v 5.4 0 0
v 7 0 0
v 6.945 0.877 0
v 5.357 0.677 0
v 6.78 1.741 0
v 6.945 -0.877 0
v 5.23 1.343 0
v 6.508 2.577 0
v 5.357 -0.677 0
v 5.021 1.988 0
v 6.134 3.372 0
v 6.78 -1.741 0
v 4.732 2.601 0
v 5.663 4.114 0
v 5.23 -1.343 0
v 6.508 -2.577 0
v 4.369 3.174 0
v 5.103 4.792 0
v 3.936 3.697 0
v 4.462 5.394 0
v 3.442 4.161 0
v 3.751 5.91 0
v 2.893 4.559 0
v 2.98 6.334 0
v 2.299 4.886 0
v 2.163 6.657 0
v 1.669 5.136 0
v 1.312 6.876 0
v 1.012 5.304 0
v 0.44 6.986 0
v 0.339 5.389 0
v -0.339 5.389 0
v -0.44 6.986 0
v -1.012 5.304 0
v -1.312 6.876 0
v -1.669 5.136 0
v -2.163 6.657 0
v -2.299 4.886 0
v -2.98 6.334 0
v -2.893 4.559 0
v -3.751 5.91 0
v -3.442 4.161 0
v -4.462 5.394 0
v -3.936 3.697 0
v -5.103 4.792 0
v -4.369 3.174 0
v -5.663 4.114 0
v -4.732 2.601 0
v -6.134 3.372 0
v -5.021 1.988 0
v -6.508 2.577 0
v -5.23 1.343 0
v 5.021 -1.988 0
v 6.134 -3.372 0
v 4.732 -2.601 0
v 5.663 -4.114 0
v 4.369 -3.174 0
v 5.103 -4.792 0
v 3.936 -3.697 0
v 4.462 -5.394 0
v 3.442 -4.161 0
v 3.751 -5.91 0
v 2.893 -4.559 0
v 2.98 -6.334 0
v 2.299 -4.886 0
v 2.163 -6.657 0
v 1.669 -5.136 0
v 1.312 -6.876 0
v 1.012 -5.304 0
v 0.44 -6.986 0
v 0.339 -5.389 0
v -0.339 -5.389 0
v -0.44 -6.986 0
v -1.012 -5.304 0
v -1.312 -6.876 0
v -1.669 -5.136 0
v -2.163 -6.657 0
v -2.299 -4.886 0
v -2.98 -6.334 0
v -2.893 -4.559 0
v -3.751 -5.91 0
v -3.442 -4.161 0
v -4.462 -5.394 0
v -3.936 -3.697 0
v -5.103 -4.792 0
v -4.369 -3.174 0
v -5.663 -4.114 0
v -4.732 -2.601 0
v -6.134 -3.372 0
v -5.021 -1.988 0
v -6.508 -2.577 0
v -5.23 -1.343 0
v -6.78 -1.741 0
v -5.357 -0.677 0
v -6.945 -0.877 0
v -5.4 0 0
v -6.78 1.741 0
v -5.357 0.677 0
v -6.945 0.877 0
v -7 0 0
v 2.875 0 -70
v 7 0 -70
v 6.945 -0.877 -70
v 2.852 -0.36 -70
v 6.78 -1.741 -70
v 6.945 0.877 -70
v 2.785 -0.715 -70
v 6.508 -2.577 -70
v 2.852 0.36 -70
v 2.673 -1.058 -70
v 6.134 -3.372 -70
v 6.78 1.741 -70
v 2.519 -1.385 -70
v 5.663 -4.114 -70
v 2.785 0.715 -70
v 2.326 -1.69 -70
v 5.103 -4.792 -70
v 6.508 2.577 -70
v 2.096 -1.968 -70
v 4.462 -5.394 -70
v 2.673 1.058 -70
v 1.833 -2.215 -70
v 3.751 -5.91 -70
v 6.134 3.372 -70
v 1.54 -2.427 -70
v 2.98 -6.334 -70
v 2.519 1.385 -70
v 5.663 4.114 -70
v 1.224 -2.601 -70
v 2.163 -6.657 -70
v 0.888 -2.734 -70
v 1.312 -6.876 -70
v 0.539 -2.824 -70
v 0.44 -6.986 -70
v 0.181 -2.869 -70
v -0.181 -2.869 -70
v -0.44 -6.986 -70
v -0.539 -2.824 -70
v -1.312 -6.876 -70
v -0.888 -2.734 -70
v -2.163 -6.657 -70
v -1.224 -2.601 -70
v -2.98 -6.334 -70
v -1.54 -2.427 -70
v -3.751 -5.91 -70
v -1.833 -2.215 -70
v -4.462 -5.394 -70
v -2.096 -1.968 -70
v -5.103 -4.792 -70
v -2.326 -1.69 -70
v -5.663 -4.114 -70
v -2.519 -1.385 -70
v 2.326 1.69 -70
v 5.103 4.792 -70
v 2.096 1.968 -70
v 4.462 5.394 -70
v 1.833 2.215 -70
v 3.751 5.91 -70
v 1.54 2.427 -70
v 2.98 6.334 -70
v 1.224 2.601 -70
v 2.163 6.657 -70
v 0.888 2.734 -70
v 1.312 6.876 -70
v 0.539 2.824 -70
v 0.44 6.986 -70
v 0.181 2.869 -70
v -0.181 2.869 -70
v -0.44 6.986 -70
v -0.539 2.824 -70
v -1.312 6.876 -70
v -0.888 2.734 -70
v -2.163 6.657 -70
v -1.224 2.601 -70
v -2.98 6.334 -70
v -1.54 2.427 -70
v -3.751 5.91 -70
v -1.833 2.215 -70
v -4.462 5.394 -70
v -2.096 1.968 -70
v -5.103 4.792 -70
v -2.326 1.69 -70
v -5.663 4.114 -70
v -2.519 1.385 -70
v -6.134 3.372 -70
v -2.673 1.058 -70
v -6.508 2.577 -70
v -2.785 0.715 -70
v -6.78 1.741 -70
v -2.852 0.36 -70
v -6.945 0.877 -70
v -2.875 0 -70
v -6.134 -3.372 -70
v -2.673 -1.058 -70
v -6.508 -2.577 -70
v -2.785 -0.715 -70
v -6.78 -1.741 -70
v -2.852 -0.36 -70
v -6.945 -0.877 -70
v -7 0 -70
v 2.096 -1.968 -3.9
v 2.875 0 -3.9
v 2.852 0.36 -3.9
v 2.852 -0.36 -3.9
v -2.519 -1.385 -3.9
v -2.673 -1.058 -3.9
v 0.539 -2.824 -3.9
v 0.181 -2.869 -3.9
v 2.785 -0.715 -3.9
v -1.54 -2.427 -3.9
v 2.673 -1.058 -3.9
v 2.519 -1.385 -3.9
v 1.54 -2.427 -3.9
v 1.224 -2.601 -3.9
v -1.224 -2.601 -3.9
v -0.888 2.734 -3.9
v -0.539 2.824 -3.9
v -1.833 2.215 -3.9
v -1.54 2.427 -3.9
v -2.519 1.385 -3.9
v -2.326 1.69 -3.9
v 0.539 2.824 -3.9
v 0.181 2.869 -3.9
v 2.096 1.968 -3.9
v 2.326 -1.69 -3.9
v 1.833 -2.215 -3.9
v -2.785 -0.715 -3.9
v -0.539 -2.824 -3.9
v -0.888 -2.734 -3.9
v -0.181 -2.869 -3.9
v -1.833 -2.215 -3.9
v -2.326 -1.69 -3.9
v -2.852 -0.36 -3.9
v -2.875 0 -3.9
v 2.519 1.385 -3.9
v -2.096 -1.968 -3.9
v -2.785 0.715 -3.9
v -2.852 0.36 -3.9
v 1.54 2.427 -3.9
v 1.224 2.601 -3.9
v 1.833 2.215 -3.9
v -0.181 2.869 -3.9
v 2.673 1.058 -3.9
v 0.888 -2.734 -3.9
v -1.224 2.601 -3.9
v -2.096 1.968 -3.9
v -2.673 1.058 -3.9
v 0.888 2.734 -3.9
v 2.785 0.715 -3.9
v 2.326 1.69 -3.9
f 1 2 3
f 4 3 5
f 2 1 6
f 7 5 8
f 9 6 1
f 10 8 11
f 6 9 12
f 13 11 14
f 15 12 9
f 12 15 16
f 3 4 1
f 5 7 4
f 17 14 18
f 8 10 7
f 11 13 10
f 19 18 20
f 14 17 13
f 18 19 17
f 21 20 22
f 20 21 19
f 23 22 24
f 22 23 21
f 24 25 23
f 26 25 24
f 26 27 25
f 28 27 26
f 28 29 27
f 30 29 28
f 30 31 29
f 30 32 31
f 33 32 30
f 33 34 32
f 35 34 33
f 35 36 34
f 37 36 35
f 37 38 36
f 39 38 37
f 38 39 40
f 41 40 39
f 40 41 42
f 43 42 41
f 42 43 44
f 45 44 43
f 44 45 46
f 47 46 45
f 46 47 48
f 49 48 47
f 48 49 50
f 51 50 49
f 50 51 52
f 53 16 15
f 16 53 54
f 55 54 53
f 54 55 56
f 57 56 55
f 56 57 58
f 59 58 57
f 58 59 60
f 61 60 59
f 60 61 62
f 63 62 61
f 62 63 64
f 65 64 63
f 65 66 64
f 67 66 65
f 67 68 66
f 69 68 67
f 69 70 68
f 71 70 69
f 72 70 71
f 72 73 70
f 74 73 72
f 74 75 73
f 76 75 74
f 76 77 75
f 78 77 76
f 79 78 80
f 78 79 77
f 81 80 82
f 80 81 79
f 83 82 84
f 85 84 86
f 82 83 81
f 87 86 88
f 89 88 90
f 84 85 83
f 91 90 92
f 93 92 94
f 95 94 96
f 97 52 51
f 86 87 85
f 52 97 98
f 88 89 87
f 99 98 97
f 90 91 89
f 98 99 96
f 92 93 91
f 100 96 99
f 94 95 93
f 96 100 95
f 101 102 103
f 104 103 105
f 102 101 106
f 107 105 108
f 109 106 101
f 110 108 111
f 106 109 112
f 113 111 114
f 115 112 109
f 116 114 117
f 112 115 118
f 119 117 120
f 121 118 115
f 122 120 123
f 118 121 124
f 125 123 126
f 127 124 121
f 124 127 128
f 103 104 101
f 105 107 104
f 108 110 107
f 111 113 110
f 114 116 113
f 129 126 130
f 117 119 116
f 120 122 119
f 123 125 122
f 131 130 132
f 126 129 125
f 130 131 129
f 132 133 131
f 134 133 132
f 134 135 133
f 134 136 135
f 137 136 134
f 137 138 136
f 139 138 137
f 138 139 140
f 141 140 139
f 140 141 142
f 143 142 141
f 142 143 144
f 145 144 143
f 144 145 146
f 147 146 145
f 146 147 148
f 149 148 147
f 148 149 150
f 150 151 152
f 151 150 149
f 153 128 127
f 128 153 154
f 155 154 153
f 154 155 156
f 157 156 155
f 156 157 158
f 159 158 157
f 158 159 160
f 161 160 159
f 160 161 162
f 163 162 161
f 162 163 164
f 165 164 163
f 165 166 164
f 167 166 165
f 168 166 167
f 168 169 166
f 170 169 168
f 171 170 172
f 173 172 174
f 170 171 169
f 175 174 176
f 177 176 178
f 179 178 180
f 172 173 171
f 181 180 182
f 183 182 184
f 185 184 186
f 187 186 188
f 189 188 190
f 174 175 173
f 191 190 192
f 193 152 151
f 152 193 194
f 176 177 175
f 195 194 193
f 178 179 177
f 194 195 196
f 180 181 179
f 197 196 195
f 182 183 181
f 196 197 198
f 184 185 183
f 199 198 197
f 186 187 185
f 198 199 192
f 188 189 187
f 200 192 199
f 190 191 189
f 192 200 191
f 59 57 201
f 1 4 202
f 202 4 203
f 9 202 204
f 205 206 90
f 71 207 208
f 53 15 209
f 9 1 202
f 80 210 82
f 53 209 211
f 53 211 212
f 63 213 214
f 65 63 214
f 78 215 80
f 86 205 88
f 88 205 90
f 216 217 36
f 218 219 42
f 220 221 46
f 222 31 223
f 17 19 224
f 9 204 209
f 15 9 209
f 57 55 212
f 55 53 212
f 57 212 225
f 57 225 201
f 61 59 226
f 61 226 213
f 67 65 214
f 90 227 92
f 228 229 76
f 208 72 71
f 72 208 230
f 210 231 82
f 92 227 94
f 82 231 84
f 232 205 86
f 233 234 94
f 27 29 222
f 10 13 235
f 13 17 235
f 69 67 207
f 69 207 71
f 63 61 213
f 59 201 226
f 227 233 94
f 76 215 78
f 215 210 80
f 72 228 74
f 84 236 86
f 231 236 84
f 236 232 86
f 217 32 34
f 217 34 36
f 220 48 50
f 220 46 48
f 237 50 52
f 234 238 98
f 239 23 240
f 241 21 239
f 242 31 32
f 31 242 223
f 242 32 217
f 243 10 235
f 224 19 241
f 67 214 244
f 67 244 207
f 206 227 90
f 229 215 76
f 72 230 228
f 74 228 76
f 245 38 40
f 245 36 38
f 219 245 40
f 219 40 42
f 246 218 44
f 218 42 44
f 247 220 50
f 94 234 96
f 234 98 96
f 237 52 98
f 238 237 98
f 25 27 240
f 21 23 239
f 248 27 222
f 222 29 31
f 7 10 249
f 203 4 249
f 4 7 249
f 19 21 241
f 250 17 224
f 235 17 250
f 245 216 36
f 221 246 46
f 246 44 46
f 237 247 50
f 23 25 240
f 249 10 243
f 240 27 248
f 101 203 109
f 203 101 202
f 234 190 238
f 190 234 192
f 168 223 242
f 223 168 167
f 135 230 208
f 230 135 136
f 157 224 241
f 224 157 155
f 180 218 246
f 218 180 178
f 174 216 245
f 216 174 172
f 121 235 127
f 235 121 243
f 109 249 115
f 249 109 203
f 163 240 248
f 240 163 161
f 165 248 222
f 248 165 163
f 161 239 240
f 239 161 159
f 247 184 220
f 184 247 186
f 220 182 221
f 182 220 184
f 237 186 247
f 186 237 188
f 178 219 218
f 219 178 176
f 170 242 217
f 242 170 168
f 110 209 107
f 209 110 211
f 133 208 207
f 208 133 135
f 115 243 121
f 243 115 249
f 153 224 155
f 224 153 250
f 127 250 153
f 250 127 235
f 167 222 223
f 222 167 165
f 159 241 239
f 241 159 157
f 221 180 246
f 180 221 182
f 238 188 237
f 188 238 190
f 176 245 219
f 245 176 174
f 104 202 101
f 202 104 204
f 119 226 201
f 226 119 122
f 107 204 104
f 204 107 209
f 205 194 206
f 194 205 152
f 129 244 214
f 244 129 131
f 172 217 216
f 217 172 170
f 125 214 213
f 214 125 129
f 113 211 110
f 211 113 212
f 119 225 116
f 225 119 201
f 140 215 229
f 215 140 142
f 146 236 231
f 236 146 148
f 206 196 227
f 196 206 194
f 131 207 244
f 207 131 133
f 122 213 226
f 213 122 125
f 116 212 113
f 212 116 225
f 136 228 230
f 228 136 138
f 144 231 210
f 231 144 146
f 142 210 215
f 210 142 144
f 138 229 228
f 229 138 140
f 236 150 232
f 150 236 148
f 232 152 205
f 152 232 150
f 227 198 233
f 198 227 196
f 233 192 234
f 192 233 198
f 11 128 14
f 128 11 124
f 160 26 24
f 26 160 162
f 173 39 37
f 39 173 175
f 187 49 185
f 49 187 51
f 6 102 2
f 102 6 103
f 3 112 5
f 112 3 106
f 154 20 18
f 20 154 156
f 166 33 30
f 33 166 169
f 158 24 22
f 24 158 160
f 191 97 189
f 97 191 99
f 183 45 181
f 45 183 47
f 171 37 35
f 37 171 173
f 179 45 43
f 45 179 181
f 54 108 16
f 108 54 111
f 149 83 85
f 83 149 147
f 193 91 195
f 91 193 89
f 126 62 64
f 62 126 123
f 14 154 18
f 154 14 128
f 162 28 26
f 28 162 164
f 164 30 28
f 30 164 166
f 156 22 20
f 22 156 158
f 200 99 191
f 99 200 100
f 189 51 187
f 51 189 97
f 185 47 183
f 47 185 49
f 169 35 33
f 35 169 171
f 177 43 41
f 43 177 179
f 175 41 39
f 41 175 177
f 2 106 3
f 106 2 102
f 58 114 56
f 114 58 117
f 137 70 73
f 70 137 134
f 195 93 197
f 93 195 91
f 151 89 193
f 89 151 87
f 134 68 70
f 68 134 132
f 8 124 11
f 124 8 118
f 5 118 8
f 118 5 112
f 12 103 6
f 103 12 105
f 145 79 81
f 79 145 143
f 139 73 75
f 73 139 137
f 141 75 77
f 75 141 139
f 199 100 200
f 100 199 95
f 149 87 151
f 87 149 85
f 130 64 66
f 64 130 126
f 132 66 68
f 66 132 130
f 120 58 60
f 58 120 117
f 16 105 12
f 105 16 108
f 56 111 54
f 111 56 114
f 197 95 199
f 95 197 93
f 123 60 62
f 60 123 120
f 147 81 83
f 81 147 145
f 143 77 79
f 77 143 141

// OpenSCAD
$fn = 50;


difference() {
	union() {
		translate(v = [0, 0, -70.0000000000]) {
			cylinder(h = 70, r = 7.0000000000);
		}
		cylinder(h = 0, r = 16.0000000000);
	}
	union() {
		translate(v = [0, 0, 0]) {
			rotate(a = [0, 0, 0]) {
				difference() {
					union() {
						#translate(v = [0, 0, -70.0000000000]) {
							cylinder(h = 70, r = 2.6000000000);
						}
						#translate(v = [0, 0, -3.9000000000]) {
							cylinder(h = 3.9000000000, r = 7.0000000000, r1 = 2.8750000000, r2 = 5.4000000000);
						}
						#translate(v = [0, 0, -70.0000000000]) {
							cylinder(h = 70, r = 2.8750000000);
						}
						#translate(v = [0, 0, -70.0000000000]) {
							cylinder(h = 70, r = 2.6000000000);
						}
					}
					union();
				}
			}
		}
	}
}
